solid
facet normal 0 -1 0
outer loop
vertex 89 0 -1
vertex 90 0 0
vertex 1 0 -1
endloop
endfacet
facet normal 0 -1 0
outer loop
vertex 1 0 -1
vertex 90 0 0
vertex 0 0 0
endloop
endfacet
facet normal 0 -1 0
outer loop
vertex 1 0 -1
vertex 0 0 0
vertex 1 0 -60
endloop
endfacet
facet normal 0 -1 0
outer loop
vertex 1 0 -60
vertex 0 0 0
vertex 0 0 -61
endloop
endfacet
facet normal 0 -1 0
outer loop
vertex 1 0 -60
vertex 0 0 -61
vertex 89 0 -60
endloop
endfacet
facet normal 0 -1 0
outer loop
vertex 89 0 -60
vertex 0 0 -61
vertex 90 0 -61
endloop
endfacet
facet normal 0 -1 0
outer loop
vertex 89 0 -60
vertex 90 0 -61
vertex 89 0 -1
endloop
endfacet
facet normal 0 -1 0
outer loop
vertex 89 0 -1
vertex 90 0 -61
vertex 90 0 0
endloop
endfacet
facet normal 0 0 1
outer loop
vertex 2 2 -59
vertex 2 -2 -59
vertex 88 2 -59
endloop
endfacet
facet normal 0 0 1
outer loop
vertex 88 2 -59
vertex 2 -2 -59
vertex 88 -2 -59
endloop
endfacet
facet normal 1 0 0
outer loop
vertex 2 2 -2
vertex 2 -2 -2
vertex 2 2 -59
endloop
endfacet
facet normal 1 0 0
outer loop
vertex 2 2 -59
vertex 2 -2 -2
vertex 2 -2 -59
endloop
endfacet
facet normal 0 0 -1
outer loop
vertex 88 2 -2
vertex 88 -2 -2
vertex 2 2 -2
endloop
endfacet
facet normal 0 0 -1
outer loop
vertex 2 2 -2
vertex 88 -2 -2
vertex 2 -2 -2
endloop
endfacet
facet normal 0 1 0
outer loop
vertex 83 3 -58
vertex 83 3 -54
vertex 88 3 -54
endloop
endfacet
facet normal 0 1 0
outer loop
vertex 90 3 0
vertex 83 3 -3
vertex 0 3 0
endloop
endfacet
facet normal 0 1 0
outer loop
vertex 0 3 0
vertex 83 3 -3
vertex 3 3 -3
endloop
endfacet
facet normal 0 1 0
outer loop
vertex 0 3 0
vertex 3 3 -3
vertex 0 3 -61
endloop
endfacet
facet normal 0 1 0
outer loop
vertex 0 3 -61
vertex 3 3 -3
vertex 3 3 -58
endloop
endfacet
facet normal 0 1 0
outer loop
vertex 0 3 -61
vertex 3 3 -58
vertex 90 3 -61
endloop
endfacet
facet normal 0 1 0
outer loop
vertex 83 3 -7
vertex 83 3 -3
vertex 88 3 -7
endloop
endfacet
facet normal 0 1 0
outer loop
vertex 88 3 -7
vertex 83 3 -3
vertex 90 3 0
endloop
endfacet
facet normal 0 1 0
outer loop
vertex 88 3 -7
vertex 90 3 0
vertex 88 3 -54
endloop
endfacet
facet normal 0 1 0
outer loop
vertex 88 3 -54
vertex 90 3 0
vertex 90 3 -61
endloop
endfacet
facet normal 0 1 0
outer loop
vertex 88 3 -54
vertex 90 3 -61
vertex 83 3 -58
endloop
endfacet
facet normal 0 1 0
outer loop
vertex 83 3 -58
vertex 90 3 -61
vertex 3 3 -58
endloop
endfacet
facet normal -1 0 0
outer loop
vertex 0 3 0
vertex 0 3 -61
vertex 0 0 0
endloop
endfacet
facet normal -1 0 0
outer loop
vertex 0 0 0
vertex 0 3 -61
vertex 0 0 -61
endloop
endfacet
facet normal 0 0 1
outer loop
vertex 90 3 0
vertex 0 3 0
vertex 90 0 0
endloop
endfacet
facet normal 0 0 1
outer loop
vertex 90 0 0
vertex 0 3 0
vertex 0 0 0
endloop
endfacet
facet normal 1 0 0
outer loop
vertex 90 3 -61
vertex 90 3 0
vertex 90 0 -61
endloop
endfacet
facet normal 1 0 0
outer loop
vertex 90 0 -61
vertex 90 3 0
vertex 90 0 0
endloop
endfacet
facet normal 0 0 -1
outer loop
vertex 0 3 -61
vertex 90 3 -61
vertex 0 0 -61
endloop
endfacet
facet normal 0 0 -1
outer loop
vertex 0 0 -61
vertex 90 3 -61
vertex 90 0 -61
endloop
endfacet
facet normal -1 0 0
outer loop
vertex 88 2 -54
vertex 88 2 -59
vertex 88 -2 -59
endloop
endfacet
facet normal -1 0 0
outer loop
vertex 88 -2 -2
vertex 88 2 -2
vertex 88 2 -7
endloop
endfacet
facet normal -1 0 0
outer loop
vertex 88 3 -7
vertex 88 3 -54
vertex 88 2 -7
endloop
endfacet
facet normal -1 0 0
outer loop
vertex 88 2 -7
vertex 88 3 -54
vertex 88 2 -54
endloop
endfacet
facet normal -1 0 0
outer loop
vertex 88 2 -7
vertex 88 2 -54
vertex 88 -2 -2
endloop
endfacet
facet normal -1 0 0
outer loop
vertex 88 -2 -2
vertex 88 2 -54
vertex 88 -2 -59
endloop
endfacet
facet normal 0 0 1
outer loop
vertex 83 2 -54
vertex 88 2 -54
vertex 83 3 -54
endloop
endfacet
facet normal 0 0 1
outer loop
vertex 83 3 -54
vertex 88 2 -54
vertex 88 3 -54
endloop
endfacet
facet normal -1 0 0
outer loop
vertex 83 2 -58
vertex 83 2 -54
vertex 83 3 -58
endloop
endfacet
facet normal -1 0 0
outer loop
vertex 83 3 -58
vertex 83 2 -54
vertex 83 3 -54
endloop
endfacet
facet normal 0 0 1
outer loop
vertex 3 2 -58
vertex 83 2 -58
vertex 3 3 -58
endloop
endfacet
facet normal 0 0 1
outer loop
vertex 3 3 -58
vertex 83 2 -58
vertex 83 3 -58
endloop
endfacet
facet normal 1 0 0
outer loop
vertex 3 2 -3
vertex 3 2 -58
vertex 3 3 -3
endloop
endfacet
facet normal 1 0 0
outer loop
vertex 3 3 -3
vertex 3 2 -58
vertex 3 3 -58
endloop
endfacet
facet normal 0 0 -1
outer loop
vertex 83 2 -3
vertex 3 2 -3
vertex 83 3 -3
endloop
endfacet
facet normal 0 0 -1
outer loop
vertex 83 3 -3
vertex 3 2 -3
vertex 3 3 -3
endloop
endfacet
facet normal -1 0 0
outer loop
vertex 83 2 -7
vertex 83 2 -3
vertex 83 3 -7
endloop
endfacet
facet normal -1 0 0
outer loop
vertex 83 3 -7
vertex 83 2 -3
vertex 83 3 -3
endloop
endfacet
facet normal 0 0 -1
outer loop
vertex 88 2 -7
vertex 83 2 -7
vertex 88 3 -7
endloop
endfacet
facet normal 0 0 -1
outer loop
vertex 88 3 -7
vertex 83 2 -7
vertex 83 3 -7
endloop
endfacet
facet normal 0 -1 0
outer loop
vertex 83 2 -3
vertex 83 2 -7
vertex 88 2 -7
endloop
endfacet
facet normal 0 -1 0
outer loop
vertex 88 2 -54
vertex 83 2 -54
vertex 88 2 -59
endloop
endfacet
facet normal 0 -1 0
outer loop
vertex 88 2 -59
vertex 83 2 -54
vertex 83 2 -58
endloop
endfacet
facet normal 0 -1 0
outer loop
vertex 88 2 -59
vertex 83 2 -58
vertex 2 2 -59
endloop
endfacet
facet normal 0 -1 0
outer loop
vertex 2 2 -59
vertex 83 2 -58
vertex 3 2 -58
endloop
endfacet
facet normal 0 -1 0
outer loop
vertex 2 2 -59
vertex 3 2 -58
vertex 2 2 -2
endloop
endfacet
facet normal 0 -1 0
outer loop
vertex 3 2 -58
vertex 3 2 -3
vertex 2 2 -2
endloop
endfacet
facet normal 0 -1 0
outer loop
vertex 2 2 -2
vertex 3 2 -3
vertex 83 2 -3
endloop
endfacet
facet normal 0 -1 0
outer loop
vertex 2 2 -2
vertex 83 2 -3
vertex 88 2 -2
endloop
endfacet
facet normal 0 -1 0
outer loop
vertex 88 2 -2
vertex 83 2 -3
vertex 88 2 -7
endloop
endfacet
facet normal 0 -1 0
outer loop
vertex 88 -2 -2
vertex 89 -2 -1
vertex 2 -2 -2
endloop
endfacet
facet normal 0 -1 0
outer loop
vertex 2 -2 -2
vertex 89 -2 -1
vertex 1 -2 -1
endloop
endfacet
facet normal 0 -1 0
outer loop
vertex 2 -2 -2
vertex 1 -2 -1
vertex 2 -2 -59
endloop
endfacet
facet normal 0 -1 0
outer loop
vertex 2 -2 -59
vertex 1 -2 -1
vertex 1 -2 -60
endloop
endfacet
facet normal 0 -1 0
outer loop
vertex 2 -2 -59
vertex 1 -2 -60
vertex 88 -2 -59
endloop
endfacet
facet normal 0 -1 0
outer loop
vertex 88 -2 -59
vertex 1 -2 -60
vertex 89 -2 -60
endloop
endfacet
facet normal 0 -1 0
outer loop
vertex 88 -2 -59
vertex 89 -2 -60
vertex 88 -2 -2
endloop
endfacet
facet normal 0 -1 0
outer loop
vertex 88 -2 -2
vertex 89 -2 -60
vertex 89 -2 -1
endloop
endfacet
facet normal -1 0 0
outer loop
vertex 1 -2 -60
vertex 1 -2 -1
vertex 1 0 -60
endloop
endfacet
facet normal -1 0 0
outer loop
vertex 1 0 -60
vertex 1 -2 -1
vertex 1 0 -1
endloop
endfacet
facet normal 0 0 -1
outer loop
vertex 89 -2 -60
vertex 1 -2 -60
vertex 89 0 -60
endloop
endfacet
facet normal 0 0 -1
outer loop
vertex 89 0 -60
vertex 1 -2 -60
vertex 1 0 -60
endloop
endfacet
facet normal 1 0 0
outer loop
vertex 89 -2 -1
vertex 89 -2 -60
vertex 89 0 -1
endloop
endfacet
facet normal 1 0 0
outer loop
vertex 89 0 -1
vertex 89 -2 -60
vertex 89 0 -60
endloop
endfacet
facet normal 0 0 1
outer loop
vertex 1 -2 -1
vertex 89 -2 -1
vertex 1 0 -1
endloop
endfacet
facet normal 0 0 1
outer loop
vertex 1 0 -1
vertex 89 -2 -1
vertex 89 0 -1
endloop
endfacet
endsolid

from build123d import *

# Parameters (mm, degrees)
SKETCH1_W           = 90
SKETCH1_H           = 61
SKETCH1_W_2         = 86
SKETCH1_H_2         = 57
BOSS_EXTRUDE1_DEPTH = 3
BOSS_EXTRUDE2_DEPTH = 1
SKETCH3_W           = 88
SKETCH3_H           = 59
SKETCH3_W_2         = 86
SKETCH3_H_2         = 57
BOSS_EXTRUDE3_DEPTH = 2


with BuildPart() as part:
    # Sketch1 → Boss-Extrude1 (new body)
    with BuildSketch(Plane(origin=(0, 0, 0), x_dir=(1, 0, 0), z_dir=(0, 1, 0))):
        with Locations((45, 30.5)):
            Rectangle(SKETCH1_W, SKETCH1_H)
        with Locations((45, 30.5)):
            Rectangle(SKETCH1_W_2, SKETCH1_H_2, mode=Mode.SUBTRACT)
    extrude(amount=BOSS_EXTRUDE1_DEPTH)

    # Sketch2 → Boss-Extrude2 (add)
    with BuildSketch(Plane(origin=(0, 3, 0), x_dir=(1, 0, 0), z_dir=(0, 1, 0))):
        Polygon((88, 59), (83, 59), (3, 59), (2, 59), (2, 2), (3, 2), (83, 2), (88, 2), (88, 7), (83, 7), (83, 3), (3, 3), (3, 58), (83, 58), (83, 54), (88, 54), align=None)
    extrude(amount=-BOSS_EXTRUDE2_DEPTH)

    # Sketch3 → Boss-Extrude3 (add)
    with BuildSketch(Plane.XZ):
        with Locations((45, -30.5)):
            Rectangle(SKETCH3_W, SKETCH3_H)
        with Locations((45, -30.5)):
            Rectangle(SKETCH3_W_2, SKETCH3_H_2, mode=Mode.SUBTRACT)
    extrude(amount=BOSS_EXTRUDE3_DEPTH)


solid = part.part
